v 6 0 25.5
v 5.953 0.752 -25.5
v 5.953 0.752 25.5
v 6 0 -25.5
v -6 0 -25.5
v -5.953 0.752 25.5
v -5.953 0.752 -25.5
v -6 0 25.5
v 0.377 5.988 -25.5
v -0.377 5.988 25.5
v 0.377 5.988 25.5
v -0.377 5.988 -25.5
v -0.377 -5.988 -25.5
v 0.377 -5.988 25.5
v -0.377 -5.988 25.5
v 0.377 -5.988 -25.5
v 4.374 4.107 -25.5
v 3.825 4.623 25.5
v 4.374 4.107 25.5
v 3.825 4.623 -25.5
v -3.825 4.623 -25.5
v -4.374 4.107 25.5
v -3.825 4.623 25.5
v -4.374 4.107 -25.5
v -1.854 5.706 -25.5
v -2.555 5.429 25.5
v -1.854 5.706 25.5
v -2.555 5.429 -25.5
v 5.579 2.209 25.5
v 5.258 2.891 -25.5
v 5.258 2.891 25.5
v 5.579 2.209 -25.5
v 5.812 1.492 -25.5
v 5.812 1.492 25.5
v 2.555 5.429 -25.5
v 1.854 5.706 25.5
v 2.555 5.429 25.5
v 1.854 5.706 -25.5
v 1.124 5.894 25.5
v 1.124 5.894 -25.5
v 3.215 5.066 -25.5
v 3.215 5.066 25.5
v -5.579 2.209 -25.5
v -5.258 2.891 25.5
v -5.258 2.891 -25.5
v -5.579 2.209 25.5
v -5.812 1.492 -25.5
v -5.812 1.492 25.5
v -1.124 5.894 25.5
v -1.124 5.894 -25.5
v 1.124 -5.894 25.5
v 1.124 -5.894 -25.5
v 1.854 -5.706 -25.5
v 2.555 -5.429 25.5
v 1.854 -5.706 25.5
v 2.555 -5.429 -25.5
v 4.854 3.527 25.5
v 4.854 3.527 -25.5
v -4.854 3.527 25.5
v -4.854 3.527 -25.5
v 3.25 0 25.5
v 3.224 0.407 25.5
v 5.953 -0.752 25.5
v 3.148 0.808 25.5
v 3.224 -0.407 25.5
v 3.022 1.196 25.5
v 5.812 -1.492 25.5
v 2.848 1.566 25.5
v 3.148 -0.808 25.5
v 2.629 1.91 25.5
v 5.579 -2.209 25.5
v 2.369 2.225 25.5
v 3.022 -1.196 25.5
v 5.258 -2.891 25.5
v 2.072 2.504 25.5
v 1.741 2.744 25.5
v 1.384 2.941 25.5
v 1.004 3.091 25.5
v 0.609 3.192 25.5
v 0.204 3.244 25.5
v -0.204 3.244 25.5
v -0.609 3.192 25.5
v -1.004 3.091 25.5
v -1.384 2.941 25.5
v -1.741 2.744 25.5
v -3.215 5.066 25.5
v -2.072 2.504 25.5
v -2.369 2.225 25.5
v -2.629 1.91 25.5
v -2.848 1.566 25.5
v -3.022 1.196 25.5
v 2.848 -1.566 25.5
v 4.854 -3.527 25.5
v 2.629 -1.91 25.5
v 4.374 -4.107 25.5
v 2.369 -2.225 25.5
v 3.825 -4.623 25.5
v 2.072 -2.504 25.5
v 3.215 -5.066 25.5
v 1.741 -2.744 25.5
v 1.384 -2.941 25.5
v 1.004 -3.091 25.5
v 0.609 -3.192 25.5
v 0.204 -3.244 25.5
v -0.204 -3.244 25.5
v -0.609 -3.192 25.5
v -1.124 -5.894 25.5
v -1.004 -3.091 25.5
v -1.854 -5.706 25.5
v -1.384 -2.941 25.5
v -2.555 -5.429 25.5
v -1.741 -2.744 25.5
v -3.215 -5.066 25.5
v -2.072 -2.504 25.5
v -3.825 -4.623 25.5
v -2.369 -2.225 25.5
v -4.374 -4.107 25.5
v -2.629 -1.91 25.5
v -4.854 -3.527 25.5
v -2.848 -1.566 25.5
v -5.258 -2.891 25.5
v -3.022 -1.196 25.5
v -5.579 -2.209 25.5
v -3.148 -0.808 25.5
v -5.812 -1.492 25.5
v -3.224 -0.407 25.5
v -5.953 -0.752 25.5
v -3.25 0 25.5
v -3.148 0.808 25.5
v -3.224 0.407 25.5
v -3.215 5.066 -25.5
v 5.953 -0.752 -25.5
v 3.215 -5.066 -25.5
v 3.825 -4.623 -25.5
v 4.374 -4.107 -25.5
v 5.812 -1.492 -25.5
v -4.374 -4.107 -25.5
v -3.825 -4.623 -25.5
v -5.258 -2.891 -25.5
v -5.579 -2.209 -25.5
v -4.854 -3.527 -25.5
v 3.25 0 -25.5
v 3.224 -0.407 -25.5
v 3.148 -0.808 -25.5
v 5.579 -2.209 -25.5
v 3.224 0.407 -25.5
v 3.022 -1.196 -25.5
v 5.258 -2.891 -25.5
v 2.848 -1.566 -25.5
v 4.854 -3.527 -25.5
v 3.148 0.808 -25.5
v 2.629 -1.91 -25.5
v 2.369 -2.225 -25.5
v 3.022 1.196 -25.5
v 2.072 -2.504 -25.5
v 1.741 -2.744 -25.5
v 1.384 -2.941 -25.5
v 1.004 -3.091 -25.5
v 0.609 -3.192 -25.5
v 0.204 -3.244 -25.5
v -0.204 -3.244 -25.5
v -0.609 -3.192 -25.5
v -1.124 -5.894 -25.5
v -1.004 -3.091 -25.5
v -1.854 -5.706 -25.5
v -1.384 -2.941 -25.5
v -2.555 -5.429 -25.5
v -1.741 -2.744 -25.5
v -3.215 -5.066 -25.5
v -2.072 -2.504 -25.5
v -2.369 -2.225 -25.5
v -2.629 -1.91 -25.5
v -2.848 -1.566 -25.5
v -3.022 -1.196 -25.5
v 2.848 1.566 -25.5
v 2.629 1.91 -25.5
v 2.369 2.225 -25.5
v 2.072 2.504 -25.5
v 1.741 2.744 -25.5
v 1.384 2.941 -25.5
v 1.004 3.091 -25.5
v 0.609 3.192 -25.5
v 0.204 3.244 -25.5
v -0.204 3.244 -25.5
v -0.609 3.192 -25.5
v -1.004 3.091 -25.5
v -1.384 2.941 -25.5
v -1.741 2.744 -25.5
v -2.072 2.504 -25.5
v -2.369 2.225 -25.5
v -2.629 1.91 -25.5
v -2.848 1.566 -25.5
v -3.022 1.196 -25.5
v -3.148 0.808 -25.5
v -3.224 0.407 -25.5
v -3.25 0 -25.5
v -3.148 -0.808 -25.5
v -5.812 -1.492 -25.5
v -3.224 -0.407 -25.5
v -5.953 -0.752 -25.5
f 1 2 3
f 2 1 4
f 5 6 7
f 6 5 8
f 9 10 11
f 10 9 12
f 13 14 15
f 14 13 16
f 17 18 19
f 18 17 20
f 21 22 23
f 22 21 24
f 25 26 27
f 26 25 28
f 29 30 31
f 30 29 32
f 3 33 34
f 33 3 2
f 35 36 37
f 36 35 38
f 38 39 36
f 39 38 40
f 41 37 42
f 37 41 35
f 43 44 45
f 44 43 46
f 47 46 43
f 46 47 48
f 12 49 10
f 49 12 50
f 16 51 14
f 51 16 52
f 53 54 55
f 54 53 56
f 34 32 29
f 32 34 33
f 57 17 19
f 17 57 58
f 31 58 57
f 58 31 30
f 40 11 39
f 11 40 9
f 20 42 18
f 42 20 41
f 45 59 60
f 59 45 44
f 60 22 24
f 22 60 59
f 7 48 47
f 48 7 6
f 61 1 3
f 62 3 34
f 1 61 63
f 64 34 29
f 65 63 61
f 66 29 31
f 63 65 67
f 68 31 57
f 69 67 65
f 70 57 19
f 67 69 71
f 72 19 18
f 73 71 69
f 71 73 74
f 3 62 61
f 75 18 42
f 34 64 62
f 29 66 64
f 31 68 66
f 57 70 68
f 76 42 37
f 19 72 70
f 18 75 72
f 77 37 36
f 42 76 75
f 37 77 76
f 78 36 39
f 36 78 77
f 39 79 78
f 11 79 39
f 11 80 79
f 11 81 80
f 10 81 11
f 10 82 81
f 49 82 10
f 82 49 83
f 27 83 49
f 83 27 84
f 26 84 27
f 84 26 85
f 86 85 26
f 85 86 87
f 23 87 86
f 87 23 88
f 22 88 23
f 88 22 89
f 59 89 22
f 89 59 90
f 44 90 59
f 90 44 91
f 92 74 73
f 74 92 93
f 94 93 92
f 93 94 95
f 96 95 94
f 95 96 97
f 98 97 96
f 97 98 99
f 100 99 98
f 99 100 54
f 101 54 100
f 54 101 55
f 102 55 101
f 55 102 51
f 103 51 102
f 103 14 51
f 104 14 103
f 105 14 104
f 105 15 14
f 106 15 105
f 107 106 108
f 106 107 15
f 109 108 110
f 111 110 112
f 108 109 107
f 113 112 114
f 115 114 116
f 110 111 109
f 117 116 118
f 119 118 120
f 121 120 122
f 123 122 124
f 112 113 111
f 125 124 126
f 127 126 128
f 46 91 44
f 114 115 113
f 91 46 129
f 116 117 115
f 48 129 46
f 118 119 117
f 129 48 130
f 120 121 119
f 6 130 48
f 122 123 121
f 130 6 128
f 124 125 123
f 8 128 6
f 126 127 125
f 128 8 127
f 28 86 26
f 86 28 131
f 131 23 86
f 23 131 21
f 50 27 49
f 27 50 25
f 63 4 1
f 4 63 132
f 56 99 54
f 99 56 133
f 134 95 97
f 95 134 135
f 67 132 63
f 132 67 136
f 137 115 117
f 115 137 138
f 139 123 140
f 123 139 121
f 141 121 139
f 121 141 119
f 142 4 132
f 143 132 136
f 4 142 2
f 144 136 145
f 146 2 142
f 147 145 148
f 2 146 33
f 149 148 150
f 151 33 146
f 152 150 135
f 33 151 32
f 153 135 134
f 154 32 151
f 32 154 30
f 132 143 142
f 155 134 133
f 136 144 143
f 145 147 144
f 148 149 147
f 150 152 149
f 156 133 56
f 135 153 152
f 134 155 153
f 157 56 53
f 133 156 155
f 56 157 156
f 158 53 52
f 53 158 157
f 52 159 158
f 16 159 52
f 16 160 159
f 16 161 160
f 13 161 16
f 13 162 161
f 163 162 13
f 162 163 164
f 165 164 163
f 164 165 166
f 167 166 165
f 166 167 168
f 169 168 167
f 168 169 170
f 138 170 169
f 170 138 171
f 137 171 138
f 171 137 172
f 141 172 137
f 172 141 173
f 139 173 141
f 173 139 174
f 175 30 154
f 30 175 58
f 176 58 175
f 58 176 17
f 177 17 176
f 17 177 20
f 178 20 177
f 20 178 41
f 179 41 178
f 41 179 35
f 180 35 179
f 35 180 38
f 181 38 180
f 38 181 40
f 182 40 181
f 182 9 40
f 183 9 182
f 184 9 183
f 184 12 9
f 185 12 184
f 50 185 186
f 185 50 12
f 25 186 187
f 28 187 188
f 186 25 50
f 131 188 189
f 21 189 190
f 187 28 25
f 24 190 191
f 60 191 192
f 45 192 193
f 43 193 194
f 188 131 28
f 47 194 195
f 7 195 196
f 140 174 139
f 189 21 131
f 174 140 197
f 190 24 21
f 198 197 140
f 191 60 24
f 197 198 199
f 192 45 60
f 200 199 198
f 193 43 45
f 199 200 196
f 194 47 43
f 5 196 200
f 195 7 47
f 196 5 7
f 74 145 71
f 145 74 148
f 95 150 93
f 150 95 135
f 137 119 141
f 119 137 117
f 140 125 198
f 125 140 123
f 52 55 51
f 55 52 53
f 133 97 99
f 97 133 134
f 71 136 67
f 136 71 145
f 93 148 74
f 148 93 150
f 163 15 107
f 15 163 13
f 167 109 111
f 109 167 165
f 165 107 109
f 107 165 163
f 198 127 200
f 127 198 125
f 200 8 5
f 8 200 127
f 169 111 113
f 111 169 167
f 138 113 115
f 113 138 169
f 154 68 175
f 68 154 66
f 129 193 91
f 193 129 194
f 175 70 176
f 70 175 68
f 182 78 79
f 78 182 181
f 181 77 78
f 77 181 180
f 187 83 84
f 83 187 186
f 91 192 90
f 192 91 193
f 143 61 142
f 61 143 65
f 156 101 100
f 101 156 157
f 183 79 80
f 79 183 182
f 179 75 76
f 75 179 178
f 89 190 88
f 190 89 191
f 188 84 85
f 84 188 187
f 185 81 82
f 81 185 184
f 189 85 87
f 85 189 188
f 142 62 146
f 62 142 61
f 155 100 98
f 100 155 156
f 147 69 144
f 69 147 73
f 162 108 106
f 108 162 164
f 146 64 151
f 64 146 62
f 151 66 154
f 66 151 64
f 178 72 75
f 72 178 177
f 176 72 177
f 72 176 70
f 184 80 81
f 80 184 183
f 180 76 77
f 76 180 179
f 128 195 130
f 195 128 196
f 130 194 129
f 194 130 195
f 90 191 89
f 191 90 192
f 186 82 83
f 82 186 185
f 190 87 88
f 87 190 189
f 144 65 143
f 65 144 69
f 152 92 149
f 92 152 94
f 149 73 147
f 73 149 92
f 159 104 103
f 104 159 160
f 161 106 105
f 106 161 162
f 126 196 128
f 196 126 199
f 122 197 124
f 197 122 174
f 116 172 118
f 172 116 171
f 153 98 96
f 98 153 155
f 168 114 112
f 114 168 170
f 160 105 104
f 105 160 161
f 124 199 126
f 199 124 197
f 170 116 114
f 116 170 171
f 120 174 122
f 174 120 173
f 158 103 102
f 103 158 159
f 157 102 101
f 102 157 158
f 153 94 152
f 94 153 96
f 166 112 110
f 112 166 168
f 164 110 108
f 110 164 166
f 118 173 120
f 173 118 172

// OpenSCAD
$fn = 50;


difference() {
	union() {
		translate(v = [0, 0, -25.5000000000]) {
			cylinder(h = 51, r = 6.0000000000);
		}
	}
	union() {
		translate(v = [0, 0, -100.0000000000]) {
			cylinder(h = 200, r = 3.2500000000);
		}
	}
}
